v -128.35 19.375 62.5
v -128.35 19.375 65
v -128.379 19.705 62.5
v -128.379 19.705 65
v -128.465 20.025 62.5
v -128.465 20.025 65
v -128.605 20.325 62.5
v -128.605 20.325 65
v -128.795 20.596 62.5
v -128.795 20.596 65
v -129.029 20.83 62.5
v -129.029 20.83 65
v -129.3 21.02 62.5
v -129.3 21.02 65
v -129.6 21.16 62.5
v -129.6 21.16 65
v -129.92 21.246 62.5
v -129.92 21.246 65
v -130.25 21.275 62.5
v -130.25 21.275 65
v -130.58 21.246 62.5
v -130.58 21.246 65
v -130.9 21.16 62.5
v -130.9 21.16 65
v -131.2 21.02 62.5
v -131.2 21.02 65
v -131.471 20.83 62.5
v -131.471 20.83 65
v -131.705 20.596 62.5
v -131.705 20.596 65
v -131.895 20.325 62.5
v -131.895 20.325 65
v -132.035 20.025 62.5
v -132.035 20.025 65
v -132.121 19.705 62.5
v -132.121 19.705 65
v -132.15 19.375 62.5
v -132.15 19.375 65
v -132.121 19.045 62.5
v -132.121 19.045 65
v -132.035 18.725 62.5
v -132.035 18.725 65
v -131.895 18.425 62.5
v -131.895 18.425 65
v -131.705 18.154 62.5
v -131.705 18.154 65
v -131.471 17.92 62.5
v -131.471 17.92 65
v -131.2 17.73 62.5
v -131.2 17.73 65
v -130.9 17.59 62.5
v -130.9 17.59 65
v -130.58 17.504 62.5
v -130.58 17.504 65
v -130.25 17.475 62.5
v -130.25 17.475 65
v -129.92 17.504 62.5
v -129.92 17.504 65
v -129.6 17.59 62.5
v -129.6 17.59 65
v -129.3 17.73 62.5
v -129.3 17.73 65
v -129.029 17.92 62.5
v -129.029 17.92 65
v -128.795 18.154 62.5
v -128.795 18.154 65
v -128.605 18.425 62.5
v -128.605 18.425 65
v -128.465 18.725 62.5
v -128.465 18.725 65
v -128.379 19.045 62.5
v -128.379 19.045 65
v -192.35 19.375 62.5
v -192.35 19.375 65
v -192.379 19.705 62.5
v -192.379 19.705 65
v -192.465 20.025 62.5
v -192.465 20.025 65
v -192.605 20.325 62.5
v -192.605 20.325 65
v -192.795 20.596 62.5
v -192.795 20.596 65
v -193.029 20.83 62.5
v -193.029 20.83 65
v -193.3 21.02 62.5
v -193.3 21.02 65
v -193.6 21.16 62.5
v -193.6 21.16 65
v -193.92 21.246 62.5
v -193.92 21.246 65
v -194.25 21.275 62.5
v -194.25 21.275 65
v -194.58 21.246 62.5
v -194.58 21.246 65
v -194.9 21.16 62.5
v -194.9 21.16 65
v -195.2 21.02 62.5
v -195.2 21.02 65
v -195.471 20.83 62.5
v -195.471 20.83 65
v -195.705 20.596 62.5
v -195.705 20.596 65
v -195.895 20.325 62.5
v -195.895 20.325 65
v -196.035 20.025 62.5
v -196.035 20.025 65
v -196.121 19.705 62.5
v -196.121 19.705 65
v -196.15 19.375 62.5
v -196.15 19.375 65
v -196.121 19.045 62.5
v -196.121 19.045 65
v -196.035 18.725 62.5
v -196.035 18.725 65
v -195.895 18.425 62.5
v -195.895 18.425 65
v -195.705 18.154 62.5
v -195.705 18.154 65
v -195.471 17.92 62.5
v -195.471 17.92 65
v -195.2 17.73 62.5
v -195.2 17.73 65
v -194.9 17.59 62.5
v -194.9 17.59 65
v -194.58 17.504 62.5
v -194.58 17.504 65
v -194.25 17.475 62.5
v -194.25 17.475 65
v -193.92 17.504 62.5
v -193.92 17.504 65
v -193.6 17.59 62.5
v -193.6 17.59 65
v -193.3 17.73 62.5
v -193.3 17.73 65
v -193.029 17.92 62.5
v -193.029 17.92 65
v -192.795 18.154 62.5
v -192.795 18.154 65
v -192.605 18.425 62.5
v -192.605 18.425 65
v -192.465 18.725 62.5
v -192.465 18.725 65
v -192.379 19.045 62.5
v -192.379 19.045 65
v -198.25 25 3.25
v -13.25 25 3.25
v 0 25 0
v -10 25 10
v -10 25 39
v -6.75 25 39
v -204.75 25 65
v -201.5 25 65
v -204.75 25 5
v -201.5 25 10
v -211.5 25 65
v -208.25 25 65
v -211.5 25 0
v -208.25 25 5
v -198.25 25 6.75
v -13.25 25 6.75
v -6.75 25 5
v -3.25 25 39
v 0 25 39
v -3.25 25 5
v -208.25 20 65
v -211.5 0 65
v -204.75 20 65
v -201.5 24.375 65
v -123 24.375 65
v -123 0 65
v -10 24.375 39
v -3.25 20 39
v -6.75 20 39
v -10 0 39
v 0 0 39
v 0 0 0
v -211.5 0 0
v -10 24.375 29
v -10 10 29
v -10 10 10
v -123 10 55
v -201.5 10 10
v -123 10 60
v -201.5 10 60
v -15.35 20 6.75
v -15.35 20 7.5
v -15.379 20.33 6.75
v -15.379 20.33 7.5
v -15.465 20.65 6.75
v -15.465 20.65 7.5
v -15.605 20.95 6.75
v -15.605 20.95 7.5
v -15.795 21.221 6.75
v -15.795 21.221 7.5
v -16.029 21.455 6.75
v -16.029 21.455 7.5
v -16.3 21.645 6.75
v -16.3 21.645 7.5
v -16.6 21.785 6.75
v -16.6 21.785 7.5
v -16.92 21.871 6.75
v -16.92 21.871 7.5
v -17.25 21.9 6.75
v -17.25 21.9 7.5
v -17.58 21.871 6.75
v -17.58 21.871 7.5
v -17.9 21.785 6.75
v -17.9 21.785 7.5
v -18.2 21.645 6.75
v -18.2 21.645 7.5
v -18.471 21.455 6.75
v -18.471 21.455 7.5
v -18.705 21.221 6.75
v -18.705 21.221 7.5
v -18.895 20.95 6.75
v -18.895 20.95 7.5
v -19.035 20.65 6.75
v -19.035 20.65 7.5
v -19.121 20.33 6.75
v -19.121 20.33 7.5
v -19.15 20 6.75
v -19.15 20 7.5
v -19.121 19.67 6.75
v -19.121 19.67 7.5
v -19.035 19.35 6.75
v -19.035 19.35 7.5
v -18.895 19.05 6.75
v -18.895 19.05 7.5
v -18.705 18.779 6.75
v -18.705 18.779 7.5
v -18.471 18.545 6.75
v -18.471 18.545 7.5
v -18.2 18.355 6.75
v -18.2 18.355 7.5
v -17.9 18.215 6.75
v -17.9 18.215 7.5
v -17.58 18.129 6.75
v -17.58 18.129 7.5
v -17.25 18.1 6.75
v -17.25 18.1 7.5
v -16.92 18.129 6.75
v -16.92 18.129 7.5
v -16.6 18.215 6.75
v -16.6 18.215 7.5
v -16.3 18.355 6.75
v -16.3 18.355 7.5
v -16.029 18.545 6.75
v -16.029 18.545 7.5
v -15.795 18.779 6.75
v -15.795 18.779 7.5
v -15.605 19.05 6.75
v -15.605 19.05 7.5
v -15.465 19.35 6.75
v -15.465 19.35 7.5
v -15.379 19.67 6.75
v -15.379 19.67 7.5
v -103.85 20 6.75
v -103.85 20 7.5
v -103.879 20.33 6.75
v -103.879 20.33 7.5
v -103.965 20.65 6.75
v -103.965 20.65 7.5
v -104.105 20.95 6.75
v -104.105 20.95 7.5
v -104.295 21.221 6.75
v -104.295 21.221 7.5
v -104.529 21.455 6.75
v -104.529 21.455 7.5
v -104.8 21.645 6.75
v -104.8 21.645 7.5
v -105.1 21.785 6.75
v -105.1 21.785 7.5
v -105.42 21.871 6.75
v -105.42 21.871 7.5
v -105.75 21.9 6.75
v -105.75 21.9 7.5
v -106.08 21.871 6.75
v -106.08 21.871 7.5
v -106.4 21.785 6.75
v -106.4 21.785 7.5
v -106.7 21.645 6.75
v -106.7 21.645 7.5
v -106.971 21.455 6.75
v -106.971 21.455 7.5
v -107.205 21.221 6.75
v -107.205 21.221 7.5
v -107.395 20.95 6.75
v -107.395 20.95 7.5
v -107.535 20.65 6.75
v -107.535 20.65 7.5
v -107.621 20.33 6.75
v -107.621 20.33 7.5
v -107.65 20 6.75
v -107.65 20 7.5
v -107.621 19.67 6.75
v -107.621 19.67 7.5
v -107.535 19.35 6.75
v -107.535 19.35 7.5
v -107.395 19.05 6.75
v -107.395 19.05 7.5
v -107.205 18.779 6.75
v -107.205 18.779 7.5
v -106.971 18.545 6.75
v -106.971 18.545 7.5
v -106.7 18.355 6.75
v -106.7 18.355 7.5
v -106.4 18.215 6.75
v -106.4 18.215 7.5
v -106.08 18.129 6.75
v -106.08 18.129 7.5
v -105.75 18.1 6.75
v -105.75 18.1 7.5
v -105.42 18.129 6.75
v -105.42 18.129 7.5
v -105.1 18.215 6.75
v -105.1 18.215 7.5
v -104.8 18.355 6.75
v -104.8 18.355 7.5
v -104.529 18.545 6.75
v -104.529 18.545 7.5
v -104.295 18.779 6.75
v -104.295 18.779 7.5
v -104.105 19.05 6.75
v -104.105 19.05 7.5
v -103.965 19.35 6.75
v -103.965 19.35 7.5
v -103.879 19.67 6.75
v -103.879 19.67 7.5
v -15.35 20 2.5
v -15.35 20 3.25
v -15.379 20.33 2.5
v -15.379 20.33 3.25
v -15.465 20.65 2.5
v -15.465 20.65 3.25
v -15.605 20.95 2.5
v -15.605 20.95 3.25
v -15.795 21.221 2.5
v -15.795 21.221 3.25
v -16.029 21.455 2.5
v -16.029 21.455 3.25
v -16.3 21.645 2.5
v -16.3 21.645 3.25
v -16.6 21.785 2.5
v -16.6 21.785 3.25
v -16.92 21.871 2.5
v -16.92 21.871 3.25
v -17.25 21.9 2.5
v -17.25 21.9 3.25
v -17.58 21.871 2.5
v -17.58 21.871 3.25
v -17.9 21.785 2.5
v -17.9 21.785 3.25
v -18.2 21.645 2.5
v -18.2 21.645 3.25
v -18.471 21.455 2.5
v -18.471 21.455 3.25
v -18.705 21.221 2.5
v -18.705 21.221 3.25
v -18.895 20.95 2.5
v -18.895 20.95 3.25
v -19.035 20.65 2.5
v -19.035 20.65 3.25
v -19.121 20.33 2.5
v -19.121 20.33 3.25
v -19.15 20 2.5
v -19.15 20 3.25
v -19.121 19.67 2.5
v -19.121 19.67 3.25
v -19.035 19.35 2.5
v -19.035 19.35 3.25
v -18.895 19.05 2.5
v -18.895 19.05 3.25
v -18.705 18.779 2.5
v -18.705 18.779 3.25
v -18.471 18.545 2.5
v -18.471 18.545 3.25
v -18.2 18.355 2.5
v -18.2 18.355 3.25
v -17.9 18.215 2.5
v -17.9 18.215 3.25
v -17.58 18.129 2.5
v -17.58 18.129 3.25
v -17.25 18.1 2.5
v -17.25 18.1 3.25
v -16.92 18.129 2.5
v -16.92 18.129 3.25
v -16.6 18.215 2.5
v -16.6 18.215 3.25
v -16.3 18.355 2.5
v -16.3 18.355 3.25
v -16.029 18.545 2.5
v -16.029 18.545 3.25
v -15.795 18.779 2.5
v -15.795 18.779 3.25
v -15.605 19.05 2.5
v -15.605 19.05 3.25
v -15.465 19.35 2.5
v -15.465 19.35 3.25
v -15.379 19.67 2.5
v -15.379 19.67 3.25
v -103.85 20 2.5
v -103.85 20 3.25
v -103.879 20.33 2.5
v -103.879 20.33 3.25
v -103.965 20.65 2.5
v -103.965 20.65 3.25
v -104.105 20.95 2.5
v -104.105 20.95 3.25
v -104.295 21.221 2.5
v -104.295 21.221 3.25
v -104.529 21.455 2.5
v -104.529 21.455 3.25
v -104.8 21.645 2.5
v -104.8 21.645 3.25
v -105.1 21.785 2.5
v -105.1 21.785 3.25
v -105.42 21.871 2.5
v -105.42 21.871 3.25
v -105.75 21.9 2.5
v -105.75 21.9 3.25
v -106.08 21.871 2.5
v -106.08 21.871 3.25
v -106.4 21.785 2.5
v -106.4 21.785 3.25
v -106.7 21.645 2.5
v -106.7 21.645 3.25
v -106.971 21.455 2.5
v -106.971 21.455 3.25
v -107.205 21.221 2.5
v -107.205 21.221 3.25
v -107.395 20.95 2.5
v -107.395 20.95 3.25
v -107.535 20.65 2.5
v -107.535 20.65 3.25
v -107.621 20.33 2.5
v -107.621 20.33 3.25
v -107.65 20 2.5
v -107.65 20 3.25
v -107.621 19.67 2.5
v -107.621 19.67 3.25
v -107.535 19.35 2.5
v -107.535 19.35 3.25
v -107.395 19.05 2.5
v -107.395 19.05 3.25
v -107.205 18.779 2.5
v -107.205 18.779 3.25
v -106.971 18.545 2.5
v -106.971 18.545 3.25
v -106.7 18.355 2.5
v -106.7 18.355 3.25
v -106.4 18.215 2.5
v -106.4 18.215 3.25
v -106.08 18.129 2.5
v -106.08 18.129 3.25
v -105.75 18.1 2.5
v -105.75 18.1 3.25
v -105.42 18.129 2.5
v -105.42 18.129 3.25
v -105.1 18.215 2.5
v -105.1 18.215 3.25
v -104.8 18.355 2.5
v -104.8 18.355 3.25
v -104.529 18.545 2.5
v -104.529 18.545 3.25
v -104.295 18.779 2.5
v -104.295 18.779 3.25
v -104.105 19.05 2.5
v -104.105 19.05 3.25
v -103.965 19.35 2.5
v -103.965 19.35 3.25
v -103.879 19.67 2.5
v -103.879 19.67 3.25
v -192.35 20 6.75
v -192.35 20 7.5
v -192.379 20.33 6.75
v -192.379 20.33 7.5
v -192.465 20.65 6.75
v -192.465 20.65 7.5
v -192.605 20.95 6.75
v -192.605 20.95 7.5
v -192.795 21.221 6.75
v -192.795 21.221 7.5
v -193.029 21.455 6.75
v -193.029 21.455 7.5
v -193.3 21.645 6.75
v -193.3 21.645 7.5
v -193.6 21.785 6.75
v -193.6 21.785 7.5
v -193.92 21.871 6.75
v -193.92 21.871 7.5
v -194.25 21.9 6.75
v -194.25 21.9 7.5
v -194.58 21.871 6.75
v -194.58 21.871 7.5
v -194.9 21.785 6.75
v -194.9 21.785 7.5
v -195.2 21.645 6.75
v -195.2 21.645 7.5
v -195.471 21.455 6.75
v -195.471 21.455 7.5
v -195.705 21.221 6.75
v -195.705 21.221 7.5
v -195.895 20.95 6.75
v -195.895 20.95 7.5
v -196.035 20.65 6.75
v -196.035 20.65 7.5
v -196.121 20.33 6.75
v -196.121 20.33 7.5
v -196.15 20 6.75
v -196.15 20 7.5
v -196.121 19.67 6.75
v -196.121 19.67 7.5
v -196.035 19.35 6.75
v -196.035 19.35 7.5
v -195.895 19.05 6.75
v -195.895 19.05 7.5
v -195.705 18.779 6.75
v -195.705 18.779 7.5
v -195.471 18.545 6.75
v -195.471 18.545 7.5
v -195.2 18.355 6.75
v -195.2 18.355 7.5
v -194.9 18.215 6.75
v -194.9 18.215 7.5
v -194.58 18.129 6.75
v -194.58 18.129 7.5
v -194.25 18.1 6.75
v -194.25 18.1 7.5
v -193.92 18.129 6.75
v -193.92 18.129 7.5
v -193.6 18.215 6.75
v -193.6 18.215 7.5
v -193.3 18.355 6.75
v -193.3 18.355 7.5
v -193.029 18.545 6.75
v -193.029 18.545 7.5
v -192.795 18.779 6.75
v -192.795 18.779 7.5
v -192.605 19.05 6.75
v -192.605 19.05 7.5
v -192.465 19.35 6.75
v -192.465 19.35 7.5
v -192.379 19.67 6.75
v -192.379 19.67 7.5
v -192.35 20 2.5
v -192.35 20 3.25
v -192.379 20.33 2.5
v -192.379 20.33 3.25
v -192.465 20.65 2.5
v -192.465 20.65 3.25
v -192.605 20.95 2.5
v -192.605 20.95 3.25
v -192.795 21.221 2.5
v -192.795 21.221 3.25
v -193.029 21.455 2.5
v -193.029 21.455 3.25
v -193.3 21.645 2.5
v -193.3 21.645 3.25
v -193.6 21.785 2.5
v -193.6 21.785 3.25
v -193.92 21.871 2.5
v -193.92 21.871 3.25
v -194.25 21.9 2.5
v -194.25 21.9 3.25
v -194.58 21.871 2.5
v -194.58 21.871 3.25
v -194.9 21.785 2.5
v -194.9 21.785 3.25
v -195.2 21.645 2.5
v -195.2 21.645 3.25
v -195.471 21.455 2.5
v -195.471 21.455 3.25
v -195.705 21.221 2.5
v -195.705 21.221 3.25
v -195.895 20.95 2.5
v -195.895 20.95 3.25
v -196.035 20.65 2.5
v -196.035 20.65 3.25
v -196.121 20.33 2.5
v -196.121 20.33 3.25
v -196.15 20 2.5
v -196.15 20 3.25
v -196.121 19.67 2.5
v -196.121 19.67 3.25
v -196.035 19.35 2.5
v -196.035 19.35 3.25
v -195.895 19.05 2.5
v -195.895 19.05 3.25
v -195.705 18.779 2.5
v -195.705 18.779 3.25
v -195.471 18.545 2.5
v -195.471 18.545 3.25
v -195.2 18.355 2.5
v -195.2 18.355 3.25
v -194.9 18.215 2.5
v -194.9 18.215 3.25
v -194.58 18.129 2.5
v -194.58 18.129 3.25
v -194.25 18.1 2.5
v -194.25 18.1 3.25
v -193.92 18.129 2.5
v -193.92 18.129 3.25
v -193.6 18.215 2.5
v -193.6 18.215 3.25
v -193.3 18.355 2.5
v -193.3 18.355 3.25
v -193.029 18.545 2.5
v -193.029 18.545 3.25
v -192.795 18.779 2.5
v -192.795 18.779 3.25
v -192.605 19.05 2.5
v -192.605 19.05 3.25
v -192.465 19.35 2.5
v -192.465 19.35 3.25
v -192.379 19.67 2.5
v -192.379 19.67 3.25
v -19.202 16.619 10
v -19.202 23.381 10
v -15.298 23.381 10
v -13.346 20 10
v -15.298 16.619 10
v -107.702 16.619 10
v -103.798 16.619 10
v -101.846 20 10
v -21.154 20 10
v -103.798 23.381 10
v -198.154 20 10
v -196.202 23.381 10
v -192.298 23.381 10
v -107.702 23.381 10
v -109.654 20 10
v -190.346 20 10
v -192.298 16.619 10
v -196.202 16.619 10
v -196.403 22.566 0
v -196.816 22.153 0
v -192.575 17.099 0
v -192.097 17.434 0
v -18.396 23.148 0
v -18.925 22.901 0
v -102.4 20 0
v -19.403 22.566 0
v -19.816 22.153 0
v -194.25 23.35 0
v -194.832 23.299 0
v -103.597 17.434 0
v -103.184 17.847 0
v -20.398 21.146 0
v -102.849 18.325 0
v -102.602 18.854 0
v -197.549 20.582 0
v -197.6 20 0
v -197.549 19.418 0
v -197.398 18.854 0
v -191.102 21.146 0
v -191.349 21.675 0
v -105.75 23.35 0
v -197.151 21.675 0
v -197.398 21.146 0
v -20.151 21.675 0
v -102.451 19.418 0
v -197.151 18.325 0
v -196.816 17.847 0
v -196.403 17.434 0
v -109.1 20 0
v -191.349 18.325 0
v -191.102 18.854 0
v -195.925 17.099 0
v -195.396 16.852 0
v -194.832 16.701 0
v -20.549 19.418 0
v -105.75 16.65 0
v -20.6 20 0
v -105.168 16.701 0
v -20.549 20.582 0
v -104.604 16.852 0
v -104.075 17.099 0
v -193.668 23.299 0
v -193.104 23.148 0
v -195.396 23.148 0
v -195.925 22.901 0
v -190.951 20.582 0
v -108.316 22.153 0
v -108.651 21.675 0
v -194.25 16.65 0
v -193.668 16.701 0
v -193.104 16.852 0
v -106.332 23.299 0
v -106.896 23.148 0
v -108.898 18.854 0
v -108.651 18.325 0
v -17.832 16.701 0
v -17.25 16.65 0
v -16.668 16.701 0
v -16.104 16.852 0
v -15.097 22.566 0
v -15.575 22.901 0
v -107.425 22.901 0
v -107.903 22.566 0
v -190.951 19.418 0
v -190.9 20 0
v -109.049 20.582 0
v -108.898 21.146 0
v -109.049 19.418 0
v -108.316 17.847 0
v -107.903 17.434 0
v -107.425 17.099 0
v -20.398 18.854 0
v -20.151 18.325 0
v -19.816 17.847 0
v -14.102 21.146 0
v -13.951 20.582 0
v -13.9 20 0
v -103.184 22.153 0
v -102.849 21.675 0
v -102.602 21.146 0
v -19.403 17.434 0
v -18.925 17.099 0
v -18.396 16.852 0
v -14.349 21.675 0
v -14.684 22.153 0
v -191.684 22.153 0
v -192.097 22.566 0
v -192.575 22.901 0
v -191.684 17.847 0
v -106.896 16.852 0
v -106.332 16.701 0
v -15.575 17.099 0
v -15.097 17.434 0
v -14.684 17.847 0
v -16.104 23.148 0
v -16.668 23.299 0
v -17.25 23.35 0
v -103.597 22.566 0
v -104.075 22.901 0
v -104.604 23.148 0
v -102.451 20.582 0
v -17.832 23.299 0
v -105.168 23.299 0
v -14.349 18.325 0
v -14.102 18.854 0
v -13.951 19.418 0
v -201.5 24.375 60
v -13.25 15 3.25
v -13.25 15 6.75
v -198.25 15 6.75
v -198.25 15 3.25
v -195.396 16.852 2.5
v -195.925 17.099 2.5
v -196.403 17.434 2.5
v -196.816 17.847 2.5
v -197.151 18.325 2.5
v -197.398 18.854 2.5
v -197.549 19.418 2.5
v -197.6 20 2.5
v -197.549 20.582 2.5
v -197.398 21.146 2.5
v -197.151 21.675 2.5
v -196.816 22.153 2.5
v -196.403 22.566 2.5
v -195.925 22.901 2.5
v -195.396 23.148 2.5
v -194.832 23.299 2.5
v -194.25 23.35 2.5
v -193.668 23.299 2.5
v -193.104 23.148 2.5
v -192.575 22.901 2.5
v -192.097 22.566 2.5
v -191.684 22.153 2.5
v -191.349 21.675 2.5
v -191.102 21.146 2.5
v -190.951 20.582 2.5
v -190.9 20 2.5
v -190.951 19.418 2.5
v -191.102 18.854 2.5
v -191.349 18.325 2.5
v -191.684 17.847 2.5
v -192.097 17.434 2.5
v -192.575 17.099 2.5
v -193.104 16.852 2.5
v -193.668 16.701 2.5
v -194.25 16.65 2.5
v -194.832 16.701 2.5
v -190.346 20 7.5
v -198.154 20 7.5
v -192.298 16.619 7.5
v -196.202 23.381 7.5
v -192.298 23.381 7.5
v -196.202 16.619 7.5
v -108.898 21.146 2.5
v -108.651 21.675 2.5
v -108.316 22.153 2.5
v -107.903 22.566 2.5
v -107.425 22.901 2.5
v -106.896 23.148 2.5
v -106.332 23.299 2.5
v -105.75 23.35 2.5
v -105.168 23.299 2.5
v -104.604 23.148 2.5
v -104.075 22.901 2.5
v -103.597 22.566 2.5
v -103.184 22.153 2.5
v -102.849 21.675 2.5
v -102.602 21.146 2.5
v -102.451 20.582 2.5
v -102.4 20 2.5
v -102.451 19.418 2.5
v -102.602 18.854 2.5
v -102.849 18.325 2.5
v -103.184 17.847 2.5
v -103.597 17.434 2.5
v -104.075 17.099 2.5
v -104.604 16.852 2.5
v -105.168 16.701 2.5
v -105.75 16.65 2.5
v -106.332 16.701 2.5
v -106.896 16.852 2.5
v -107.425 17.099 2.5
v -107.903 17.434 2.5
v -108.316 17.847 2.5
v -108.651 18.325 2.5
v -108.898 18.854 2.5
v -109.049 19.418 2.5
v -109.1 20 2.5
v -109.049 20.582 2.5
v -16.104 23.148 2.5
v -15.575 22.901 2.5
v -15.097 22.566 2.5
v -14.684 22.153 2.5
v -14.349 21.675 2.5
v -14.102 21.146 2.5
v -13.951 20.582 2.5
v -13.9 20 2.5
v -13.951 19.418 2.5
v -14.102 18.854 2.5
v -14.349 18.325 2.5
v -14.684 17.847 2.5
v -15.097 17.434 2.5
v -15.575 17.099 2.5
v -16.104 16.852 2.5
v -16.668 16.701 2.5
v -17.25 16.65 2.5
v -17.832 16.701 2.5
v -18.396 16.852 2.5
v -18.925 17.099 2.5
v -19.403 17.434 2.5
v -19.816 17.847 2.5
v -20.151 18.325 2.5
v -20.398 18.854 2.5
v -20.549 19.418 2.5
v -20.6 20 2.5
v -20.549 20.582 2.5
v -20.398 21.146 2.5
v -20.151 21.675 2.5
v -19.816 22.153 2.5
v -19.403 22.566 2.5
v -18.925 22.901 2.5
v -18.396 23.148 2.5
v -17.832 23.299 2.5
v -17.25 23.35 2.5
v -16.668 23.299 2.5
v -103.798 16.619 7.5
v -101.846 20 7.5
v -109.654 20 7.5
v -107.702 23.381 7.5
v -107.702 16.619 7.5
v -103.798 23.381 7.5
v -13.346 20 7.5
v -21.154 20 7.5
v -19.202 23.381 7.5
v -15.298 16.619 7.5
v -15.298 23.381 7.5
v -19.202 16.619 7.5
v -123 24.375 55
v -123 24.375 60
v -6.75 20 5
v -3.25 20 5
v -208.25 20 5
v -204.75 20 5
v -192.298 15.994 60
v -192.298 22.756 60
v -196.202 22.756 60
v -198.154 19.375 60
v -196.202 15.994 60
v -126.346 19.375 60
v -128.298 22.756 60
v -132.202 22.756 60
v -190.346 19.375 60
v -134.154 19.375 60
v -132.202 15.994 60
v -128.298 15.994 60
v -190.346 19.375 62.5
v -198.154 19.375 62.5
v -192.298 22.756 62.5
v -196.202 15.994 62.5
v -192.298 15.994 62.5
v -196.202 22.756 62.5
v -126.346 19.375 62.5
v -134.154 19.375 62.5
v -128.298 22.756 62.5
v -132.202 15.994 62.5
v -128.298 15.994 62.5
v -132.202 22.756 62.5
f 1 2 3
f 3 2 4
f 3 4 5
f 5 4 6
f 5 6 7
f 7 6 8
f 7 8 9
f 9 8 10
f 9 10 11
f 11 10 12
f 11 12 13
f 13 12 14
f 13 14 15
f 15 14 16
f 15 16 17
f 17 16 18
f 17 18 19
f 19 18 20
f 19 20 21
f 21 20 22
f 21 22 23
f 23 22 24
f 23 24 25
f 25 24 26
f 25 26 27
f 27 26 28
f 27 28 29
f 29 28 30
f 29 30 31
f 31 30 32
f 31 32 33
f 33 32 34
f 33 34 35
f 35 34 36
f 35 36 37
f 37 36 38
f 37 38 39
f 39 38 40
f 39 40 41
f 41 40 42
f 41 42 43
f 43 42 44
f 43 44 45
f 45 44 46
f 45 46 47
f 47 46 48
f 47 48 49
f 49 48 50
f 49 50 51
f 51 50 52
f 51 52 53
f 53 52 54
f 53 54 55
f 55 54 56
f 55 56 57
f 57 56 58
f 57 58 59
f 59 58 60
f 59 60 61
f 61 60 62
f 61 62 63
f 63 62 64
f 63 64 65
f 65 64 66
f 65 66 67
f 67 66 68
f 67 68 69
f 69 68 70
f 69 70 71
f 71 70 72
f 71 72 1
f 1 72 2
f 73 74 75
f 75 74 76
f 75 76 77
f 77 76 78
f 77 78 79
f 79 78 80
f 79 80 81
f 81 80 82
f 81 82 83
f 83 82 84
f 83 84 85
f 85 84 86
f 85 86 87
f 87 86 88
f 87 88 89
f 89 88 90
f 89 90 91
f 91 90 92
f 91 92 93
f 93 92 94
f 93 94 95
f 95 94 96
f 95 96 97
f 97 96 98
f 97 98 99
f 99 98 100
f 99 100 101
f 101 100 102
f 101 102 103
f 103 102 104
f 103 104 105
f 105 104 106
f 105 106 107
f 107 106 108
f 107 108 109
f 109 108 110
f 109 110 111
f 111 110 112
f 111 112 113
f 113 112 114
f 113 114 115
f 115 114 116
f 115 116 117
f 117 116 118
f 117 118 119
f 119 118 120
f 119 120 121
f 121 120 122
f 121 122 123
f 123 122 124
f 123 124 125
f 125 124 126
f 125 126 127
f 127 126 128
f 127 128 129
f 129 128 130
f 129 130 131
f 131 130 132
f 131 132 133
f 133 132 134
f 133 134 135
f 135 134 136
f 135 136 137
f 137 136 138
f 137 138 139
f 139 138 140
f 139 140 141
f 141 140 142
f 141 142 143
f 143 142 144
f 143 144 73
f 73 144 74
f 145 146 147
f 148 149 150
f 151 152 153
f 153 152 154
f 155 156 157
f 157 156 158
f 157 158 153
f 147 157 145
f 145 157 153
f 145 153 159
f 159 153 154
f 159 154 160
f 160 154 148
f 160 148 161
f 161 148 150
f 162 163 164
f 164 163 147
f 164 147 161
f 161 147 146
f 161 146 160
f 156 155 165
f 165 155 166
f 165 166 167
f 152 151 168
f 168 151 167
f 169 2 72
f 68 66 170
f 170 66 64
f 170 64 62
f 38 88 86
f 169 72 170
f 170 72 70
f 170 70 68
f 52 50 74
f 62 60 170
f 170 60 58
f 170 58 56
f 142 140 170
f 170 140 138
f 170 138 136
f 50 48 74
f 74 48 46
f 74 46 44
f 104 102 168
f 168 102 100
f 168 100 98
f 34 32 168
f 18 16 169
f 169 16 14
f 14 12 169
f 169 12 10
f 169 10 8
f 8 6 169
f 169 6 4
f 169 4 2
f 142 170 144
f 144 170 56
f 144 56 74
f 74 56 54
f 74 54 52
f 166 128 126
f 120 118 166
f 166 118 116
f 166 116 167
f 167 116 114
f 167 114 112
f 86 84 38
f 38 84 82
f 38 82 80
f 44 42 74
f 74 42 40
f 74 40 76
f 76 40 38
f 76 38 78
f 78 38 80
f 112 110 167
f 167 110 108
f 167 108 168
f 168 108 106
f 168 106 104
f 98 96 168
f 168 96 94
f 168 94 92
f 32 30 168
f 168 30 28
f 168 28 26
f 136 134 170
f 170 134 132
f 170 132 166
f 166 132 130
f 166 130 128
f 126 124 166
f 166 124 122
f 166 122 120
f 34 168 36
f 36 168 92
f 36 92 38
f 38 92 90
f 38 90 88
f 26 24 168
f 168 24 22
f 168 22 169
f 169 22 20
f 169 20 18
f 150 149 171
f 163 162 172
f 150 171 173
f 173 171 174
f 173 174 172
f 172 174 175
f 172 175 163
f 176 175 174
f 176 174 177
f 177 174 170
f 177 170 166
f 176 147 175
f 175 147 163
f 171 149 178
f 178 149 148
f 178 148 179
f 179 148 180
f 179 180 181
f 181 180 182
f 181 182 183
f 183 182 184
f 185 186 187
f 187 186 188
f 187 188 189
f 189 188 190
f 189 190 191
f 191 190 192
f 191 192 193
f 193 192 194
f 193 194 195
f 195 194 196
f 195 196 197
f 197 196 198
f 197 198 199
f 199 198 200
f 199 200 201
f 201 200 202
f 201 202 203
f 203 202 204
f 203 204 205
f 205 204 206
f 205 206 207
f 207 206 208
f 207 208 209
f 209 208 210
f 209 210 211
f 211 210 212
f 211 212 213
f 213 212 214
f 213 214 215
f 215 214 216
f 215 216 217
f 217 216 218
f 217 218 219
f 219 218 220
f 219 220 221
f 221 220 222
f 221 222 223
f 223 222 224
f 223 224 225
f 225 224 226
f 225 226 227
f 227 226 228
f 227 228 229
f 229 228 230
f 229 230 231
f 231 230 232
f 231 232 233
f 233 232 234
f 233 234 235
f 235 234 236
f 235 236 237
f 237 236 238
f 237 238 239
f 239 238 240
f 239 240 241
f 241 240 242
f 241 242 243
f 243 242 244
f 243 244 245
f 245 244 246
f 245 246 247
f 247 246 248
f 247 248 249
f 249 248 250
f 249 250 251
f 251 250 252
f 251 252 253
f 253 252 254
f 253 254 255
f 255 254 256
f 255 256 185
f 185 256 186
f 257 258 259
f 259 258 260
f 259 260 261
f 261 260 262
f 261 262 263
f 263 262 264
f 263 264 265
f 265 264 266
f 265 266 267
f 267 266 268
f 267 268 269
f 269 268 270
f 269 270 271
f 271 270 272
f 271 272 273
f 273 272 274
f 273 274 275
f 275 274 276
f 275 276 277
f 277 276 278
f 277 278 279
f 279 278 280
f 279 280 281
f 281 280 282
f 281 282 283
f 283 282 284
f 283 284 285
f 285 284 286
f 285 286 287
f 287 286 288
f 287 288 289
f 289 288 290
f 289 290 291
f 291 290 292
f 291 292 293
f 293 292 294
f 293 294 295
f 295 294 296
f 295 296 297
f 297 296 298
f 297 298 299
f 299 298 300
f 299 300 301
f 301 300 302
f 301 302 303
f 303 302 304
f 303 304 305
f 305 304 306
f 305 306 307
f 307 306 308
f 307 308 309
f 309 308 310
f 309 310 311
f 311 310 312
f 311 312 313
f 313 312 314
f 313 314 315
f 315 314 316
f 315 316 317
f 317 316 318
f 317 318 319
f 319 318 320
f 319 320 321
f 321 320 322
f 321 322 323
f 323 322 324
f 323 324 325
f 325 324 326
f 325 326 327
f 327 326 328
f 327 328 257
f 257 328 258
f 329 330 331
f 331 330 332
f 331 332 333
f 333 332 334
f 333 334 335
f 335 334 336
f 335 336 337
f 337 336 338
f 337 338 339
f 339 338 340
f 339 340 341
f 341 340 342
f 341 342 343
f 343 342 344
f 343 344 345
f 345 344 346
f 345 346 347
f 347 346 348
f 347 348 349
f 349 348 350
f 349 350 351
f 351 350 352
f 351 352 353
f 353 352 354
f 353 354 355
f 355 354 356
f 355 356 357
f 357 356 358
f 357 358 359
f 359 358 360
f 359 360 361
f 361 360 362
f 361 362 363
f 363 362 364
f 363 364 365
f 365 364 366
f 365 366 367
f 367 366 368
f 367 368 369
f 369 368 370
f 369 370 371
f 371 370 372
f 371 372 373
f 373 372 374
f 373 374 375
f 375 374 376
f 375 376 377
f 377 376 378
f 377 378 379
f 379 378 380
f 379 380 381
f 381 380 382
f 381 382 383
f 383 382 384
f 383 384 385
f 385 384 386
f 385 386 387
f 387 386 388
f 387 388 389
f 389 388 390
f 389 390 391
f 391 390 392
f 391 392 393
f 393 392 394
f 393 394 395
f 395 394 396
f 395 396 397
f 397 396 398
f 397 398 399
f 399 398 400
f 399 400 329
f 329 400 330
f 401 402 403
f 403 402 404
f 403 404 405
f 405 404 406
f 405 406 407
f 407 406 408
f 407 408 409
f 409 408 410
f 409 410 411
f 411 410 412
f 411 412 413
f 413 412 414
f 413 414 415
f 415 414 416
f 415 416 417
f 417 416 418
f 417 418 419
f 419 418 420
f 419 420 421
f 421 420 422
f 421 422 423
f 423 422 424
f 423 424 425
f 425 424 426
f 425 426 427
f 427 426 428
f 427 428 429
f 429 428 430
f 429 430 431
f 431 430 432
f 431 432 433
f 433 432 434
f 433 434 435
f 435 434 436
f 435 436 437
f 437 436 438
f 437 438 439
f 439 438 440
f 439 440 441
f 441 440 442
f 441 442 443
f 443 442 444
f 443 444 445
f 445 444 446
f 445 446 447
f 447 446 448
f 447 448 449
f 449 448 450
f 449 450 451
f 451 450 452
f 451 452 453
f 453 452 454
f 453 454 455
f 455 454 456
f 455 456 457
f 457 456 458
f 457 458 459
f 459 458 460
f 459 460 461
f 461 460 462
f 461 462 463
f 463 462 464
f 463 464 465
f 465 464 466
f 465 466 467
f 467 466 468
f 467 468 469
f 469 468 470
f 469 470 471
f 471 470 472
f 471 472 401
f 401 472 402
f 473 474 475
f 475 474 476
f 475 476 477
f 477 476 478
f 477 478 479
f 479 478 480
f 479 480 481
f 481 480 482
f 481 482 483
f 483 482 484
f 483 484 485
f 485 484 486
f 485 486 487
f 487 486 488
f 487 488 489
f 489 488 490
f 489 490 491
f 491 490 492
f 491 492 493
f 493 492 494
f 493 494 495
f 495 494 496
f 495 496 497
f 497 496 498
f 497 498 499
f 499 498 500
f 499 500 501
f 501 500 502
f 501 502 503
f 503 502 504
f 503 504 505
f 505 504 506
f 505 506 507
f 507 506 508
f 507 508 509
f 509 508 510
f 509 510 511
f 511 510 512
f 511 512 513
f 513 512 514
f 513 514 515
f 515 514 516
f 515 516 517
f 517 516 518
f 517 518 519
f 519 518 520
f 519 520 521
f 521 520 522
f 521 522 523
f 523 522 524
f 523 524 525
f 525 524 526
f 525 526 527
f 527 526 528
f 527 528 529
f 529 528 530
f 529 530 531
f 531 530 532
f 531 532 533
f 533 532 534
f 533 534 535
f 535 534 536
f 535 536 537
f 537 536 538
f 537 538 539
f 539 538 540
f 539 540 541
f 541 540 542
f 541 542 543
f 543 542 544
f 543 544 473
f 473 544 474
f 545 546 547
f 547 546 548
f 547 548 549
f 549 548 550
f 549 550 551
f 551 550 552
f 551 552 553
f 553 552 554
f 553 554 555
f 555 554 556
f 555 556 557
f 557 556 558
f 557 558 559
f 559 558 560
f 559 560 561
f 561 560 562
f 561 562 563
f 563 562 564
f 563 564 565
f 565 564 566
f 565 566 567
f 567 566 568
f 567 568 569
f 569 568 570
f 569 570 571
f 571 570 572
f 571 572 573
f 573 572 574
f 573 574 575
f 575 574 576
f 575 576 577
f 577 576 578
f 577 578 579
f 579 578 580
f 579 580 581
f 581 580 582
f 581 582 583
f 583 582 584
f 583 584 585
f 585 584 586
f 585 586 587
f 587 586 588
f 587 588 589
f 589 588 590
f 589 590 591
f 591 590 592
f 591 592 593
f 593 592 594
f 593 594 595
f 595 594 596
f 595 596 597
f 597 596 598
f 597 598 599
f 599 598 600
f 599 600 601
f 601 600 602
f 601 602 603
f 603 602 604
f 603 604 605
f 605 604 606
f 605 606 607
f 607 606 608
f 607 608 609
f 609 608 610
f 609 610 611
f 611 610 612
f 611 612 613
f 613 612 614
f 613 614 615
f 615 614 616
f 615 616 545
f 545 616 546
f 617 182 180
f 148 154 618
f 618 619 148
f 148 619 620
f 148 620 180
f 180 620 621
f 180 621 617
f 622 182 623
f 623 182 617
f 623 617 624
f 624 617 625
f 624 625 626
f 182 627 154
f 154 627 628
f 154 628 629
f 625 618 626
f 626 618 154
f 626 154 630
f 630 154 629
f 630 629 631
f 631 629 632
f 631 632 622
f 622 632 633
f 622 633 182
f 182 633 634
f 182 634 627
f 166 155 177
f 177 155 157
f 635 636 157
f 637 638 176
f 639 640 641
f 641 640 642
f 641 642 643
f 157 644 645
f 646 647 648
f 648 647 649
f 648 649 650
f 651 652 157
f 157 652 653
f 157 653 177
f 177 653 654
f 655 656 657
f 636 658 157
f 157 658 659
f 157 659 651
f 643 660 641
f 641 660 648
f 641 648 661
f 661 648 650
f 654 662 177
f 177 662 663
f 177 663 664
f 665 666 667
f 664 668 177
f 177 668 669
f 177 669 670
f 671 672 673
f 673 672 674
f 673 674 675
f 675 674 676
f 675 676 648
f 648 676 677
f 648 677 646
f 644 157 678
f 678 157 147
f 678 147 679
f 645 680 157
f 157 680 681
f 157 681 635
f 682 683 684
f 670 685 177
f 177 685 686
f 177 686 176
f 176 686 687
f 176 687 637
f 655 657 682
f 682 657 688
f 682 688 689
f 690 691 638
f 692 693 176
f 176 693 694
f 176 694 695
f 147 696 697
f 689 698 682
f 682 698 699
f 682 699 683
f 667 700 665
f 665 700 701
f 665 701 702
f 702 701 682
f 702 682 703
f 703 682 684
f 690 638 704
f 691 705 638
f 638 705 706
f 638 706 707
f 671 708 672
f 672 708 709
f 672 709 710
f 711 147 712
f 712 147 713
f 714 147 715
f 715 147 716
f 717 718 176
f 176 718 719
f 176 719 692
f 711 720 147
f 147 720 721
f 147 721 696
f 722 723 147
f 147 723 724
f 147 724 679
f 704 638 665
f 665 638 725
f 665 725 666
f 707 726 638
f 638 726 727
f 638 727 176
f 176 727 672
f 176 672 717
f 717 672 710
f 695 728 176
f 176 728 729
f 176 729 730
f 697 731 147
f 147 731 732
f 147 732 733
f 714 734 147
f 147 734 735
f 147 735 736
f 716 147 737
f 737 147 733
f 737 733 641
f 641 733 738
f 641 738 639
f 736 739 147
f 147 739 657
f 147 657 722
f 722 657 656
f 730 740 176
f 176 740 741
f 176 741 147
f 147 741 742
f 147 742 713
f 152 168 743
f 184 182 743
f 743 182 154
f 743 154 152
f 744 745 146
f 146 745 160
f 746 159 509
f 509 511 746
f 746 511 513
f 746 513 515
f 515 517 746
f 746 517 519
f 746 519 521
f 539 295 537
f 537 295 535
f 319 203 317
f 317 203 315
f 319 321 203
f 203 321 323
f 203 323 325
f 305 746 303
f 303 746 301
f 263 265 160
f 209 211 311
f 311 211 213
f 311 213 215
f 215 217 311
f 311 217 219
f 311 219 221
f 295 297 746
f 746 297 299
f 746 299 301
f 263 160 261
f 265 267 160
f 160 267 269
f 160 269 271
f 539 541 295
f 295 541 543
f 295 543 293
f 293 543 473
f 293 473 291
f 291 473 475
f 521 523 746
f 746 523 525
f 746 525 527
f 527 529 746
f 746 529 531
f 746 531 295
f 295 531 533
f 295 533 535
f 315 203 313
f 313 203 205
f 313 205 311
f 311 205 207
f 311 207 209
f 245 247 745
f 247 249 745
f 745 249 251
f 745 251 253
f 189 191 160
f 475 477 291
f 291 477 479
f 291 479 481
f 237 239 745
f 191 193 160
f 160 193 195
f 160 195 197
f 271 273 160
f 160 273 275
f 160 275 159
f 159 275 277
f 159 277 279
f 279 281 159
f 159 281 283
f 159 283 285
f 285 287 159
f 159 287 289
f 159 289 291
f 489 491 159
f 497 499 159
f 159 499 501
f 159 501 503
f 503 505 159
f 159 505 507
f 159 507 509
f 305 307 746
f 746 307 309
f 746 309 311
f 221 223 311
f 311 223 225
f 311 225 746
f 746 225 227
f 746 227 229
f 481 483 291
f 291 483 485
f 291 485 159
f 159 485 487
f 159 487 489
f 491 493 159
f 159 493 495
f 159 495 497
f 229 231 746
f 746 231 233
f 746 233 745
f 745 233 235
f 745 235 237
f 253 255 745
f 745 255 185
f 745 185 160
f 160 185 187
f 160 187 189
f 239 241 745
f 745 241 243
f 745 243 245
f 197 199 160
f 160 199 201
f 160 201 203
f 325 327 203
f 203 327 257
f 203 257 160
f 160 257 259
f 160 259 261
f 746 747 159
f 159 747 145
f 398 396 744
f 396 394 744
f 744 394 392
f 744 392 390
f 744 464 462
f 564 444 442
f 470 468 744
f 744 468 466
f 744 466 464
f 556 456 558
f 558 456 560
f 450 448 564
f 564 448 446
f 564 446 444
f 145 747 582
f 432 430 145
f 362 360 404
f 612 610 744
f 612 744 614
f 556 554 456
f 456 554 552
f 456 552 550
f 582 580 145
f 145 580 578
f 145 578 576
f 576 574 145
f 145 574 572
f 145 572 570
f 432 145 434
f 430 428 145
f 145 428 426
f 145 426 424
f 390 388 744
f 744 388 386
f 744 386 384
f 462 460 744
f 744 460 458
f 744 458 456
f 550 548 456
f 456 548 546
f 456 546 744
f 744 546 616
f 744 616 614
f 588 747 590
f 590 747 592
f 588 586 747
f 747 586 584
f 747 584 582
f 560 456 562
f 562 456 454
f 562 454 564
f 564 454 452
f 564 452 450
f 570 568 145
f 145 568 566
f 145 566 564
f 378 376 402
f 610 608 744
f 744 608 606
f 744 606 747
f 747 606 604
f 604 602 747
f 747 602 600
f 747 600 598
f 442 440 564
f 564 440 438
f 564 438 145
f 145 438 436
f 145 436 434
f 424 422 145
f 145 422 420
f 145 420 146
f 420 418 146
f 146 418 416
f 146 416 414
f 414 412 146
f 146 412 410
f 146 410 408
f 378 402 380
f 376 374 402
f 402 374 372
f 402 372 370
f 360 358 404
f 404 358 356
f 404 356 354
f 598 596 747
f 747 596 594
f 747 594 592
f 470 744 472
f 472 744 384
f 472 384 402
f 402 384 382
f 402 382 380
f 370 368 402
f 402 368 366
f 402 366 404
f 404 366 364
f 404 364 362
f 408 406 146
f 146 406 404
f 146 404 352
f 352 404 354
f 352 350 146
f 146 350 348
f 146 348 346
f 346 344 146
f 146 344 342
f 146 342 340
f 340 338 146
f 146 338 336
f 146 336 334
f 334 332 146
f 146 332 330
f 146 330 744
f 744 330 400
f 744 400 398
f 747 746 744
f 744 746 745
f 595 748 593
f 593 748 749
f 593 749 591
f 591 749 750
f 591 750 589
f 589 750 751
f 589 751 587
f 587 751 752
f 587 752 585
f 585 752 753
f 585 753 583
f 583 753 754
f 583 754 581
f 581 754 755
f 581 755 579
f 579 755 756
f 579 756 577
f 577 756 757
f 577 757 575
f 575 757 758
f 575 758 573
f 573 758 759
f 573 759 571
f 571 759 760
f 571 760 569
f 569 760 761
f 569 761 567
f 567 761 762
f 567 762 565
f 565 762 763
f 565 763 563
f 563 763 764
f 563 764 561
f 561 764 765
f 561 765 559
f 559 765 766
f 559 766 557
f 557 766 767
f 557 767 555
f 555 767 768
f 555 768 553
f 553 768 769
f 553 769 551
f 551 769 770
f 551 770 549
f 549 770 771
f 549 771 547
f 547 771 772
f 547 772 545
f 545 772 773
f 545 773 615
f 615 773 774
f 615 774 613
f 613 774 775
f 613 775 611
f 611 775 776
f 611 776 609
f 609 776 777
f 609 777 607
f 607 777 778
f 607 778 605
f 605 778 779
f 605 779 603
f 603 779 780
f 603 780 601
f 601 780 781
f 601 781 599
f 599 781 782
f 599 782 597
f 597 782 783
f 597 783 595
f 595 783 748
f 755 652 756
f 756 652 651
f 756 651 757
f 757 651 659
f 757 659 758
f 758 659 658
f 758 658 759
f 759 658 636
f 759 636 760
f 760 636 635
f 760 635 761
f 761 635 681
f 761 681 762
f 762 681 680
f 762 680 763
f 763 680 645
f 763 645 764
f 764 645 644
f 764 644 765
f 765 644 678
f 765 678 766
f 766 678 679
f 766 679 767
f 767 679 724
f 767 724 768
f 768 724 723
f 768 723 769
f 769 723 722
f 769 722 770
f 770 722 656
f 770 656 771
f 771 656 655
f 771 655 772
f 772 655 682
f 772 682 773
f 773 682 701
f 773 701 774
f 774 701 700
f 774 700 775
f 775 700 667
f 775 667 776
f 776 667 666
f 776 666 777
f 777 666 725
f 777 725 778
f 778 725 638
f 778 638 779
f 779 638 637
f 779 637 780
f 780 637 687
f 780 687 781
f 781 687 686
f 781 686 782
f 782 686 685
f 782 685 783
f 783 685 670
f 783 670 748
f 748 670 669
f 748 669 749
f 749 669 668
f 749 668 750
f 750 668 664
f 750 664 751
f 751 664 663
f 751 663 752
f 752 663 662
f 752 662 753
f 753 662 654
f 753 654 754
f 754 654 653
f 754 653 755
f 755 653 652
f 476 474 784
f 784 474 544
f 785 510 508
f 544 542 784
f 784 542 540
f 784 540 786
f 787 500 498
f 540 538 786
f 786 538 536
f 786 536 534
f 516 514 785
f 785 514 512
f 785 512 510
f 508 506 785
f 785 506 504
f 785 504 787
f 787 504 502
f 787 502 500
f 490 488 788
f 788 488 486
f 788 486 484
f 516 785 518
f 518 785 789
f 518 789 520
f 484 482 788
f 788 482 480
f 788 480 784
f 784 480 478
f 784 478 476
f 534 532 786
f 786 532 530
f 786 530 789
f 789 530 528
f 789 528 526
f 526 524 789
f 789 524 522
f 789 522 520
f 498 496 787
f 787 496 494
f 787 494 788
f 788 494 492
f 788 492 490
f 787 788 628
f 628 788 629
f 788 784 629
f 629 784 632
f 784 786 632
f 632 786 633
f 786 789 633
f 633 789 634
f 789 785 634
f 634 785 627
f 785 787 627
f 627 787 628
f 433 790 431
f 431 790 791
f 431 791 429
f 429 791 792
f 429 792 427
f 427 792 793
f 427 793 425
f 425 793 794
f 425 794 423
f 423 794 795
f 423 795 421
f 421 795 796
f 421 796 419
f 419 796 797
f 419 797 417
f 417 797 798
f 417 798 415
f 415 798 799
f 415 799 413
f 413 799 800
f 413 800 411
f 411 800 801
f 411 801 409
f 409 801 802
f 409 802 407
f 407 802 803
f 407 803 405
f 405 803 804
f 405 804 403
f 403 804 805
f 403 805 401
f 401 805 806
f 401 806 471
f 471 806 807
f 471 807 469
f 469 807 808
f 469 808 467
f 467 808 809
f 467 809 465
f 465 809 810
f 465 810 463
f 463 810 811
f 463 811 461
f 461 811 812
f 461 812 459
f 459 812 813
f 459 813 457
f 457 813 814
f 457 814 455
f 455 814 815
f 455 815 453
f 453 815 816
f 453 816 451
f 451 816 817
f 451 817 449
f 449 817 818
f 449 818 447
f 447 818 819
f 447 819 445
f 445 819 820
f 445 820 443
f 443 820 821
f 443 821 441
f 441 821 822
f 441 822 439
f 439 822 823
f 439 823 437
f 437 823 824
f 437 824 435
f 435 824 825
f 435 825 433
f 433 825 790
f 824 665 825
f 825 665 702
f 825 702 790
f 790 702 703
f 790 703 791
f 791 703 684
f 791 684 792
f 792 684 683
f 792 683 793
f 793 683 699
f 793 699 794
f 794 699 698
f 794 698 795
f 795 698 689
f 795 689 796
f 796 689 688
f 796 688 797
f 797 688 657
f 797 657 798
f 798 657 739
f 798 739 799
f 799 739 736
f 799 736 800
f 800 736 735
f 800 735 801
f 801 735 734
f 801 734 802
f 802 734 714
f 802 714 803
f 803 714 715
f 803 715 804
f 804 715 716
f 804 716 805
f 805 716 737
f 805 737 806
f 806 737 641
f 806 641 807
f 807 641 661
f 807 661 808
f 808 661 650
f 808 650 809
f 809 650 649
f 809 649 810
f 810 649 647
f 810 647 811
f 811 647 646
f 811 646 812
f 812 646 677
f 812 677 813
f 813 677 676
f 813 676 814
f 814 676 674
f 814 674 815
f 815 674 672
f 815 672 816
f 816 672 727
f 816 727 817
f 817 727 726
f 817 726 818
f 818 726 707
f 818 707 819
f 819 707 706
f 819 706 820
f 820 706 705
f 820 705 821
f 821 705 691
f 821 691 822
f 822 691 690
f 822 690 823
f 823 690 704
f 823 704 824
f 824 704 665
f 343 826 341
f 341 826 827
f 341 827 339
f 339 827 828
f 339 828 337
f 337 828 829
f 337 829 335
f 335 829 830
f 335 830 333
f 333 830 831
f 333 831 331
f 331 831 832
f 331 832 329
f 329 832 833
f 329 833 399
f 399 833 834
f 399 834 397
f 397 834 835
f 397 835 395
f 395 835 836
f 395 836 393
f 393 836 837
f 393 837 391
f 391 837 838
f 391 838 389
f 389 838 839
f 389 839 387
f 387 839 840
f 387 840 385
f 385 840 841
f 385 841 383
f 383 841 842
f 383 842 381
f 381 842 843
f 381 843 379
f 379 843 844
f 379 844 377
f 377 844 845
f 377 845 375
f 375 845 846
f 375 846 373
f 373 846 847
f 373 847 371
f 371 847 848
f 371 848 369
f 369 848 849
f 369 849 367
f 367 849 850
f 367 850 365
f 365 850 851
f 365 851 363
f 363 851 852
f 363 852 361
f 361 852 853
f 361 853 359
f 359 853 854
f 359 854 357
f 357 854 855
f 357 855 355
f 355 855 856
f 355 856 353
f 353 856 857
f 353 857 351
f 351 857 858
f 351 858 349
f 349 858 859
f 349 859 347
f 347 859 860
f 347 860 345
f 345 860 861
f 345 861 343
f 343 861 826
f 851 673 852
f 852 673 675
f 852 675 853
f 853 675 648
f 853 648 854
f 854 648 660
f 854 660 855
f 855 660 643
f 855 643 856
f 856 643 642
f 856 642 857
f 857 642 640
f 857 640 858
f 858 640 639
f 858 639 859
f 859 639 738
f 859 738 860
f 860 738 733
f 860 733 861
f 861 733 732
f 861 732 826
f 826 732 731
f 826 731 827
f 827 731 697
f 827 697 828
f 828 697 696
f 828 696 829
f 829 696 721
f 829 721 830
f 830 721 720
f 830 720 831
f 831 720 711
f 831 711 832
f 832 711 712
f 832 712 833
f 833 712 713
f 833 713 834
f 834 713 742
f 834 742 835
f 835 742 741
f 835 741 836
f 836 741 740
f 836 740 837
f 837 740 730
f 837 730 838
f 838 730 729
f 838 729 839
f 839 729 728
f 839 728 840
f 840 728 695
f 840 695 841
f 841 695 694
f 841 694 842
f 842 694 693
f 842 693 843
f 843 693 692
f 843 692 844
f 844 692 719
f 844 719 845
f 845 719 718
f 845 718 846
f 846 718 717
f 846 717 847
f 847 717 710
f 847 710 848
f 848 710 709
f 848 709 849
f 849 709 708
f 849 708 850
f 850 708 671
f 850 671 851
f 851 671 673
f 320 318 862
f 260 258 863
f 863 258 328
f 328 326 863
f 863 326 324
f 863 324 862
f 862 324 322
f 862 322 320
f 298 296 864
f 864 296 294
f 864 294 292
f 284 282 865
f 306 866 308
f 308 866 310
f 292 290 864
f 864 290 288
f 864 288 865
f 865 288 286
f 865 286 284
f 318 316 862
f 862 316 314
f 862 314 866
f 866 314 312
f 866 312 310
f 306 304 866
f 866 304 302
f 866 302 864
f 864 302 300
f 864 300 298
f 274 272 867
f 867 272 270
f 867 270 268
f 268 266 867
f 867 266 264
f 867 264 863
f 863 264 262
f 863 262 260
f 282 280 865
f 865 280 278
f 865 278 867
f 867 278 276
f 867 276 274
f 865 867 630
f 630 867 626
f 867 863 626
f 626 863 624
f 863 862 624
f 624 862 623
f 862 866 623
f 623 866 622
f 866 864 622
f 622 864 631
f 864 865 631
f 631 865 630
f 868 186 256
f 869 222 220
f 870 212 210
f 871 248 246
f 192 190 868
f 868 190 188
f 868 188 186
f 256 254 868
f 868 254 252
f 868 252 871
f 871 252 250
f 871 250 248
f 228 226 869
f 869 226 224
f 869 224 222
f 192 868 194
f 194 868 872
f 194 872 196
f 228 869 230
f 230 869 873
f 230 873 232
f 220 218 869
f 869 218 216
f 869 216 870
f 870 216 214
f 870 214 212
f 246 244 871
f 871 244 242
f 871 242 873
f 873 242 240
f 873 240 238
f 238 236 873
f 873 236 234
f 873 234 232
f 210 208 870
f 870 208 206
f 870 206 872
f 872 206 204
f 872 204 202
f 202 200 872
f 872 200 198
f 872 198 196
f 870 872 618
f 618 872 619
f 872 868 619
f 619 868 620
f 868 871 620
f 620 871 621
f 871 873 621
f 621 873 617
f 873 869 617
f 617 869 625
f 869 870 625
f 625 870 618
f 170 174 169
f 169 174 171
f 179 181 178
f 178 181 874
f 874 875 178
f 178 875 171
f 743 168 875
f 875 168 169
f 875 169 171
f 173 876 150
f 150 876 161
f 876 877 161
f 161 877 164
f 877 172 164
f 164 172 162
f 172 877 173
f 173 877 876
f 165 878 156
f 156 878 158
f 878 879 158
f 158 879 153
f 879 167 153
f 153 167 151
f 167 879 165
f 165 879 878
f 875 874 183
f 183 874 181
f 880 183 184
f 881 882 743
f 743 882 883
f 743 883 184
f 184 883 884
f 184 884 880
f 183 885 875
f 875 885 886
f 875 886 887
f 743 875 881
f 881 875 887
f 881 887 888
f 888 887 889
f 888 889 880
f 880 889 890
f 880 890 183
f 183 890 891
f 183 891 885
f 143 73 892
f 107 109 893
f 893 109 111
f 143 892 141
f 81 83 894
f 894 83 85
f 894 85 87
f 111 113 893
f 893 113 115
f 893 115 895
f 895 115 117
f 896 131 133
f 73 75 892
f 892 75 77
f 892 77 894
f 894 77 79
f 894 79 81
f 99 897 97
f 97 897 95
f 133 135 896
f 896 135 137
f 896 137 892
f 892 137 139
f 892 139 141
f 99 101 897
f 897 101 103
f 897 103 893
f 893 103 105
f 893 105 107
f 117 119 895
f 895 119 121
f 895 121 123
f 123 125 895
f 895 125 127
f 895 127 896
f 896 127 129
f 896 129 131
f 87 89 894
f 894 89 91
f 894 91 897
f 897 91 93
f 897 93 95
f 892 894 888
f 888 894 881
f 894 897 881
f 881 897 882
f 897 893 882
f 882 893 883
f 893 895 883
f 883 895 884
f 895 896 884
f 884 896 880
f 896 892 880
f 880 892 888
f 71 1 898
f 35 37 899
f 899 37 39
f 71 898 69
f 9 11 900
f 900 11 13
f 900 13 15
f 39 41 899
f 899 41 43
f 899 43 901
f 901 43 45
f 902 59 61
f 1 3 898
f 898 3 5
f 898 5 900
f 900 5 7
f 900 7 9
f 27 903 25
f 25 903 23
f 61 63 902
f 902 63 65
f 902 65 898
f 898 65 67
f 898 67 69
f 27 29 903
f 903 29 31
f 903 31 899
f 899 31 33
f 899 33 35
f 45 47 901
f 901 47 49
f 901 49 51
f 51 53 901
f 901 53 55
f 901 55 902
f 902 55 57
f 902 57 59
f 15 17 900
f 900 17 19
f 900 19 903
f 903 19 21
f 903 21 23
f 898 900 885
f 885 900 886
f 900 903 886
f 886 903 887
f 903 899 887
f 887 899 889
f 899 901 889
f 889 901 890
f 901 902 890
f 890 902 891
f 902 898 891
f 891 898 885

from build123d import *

# Parameters (mm, degrees)
SKETCH1_W           = 25
SKETCH1_H           = 211.5
BOSS_EXTRUDE1_DEPTH = 10
SKETCH2_W           = 10
SKETCH2_H           = 15
SKETCH2_H_2         = 10
SKETCH2_W_2         = 191.5
BOSS_EXTRUDE2_DEPTH = 45
SKETCH3_W           = 185
SKETCH3_H           = 3.5
CUT_EXTRUDE1_DEPTH  = 10
SKETCH4_R           = 1.9
CUT_EXTRUDE2_DEPTH  = 220.959655392
SKETCH5_R           = 3.35
CUT_EXTRUDE3_DEPTH  = 2.5
CUT_EXTRUDE4_DEPTH  = 2.5
LPATTERN1_COUNT     = 3
LPATTERN1_PITCH     = 88.5
CUT_EXTRUDE5_REACH  = 224.671
BOSS_EXTRUDE4_REACH = 224.671
CUT_EXTRUDE6_REACH  = 224.671
SKETCH11_W          = 78.5
SKETCH11_H          = 0.625
SKETCH11_W_2        = 113
SKETCH12_W          = 3.5
SKETCH12_H          = 34
CUT_EXTRUDE8_DEPTH  = 5
CUT_EXTRUDE9_DEPTH  = 5
SKETCH14_W          = 78.5
SKETCH14_H          = 5
CUT_EXTRUDE10_DEPTH = 14.375
CUT_EXTRUDE11_REACH = 224.671
SKETCH15_R          = 1.9
CUT_EXTRUDE12_DEPTH = 2.5
LPATTERN2_COUNT     = 2
LPATTERN2_PITCH     = 64


with BuildPart() as part:
    # Sketch1 → Boss-Extrude1 (new body)
    with BuildSketch(Plane(origin=(0, 0, 0), x_dir=(0, 1, 0), z_dir=(0, 0, 1))):
        with Locations((12.5, 105.75)):
            Rectangle(SKETCH1_W, SKETCH1_H)
    boss_extrude1 = extrude(amount=BOSS_EXTRUDE1_DEPTH)

    # Sketch2 → Boss-Extrude2 (add)
    with BuildSketch(Plane.XY.offset(10)):
        with Locations((-5, 17.5)):
            Rectangle(SKETCH2_W, SKETCH2_H)
        with Locations((-5, 5)):
            Rectangle(SKETCH2_W, SKETCH2_H_2)
        with Locations((-105.75, 5)):
            Rectangle(SKETCH2_W_2, SKETCH2_H_2)
        with Locations((-206.5, 5)):
            Rectangle(SKETCH2_W, SKETCH2_H_2)
        with Locations((-206.5, 17.5)):
            Rectangle(SKETCH2_W, SKETCH2_H)
    extrude(amount=BOSS_EXTRUDE2_DEPTH)

    # Mirror1: Boss-Extrude1 across plane
    add(boss_extrude1.mirror(Plane.XY.offset(32.5)))

    # Sketch3 → Cut-Extrude1 (cut)
    with BuildSketch(Plane(origin=(0, 25, 0), x_dir=(-1, 0, 0), z_dir=(0, 1, 0))):
        with Locations((105.75, 5)):
            Rectangle(SKETCH3_W, SKETCH3_H)
    extrude(amount=-CUT_EXTRUDE1_DEPTH, mode=Mode.SUBTRACT)

    # Sketch4 → Cut-Extrude2 (cut, through all)
    with BuildSketch(Plane(origin=(0, 0, 10), x_dir=(-1, 0, 0), z_dir=(0, 0, 1))):
        with Locations(Location((194.25, -20, 0), (0, 0, 180))):
            Circle(SKETCH4_R)
    cut_extrude2 = extrude(amount=-CUT_EXTRUDE2_DEPTH, mode=Mode.SUBTRACT)

    # Sketch5 → Cut-Extrude3 (cut)
    with BuildSketch(Plane(origin=(0, 0, 0), x_dir=(1, 0, 0), z_dir=(0, 0, -1))):
        with Locations(Location((-194.25, -20, 0), (0, 0, 180))):
            Circle(SKETCH5_R)
    cut_extrude3 = extrude(amount=-CUT_EXTRUDE3_DEPTH, mode=Mode.SUBTRACT)

    # Sketch6 → Cut-Extrude4 (cut)
    with BuildSketch(Plane.XY.offset(10)):
        Polygon((-192.297927406, 23.381088913), (-196.202072594, 23.381088913), (-198.154145188, 20), (-196.202072594, 16.618911087), (-192.297927406, 16.618911087), (-190.345854812, 20), align=None)
    cut_extrude4 = extrude(amount=-CUT_EXTRUDE4_DEPTH, mode=Mode.SUBTRACT)

    # LPattern1: Cut-Extrude2, Cut-Extrude3, Cut-Extrude4 ×3
    with Locations(*[(i * LPATTERN1_PITCH, 0, 0) for i in range(1, LPATTERN1_COUNT)]):
        add(cut_extrude2, mode=Mode.SUBTRACT)
        add(cut_extrude3, mode=Mode.SUBTRACT)
        add(cut_extrude4, mode=Mode.SUBTRACT)

    # Sketch9 → Cut-Extrude5 (cut, up to next)
    with BuildSketch(Plane.XZ, mode=Mode.PRIVATE) as cut_extrude5_sk1:
        Polygon((-10, 39), (0, 39), (0, 65), (-123, 65), align=None)
    cut_extrude5_tool1 = extrude(cut_extrude5_sk1.sketch, amount=-CUT_EXTRUDE5_REACH, mode=Mode.PRIVATE) & part.part
    add(cut_extrude5_tool1.solids().sort_by_distance((-41.250627, 0, 55.681704))[0], mode=Mode.SUBTRACT)

    # Sketch10 → Boss-Extrude4 (add, up to next)
    with BuildSketch(Plane(origin=(0, 25, 0), x_dir=(-1, 0, 0), z_dir=(0, 1, 0)), mode=Mode.PRIVATE) as boss_extrude4_sk1:
        Polygon((123, 65), (10, 39), (10, 29), (123, 55), align=None)
    boss_extrude4_tool1 = extrude(boss_extrude4_sk1.sketch, amount=-BOSS_EXTRUDE4_REACH, mode=Mode.PRIVATE) - part.part
    add(boss_extrude4_tool1.solids().sort_by_distance((-66.5, 25, 47))[0])

    # Sketch11 → Cut-Extrude6 (cut, up to next)
    with BuildSketch(Plane.XY.offset(65), mode=Mode.PRIVATE) as cut_extrude6_sk1:
        with Locations((-162.25, 24.6875)):
            Rectangle(SKETCH11_W, SKETCH11_H)
    cut_extrude6_tool1 = extrude(cut_extrude6_sk1.sketch, amount=-CUT_EXTRUDE6_REACH, mode=Mode.PRIVATE) & part.part
    # Sketch11 → Cut-Extrude6 (cut, up to next)
    with BuildSketch(Plane.XY.offset(65), mode=Mode.PRIVATE) as cut_extrude6_sk2:
        with Locations((-66.5, 24.6875)):
            Rectangle(SKETCH11_W_2, SKETCH11_H)
    cut_extrude6_tool2 = extrude(cut_extrude6_sk2.sketch, amount=-CUT_EXTRUDE6_REACH, mode=Mode.PRIVATE) & part.part
    add(cut_extrude6_tool1.solids().sort_by_distance((-162.25, 24.6875, 65))[0], mode=Mode.SUBTRACT)
    add(cut_extrude6_tool2.solids().sort_by_distance((-66.5, 24.6875, 65))[0], mode=Mode.SUBTRACT)

    # Sketch12 → Cut-Extrude8 (cut)
    with BuildSketch(Plane(origin=(0, 25, 0), x_dir=(-1, 0, 0), z_dir=(0, 1, 0))):
        with Locations((5, 22)):
            Rectangle(SKETCH12_W, SKETCH12_H)
    extrude(amount=-CUT_EXTRUDE8_DEPTH, mode=Mode.SUBTRACT)

    # Sketch13 → Cut-Extrude9 (cut)
    with BuildSketch(Plane(origin=(0, 25, 0), x_dir=(-1, 0, 0), z_dir=(0, 1, 0))):
        Polygon((204.75, 15), (204.75, 5), (208.25, 5), (208.25, 15), (208.25, 65), (204.75, 65), align=None)
    extrude(amount=-CUT_EXTRUDE9_DEPTH, mode=Mode.SUBTRACT)

    # Sketch14 → Cut-Extrude10 (cut)
    with BuildSketch(Plane(origin=(0, 24.375, 0), x_dir=(-1, 0, 0), z_dir=(0, 1, 0))):
        with Locations((162.25, 57.5)):
            Rectangle(SKETCH14_W, SKETCH14_H)
    extrude(amount=-CUT_EXTRUDE10_DEPTH, mode=Mode.SUBTRACT)

    # Sketch15 → Cut-Extrude11 (cut, up to next)
    with BuildSketch(Plane.XY.offset(65), mode=Mode.PRIVATE) as cut_extrude11_sk1:
        with Locations((-194.25, 19.375)):
            Circle(SKETCH15_R)
    cut_extrude11_tool1 = extrude(cut_extrude11_sk1.sketch, amount=-CUT_EXTRUDE11_REACH, mode=Mode.PRIVATE) & part.part
    cut_extrude11 = cut_extrude11_tool1.solids().sort_by_distance((-194.25, 19.375, 65))[0]
    add(cut_extrude11, mode=Mode.SUBTRACT)

    # Sketch16 → Cut-Extrude12 (cut)
    with BuildSketch(Plane(origin=(0, 0, 60), x_dir=(1, 0, 0), z_dir=(0, 0, -1))):
        Polygon((-192.297927406, -15.993911087), (-196.202072594, -15.993911087), (-198.154145188, -19.375), (-196.202072594, -22.756088913), (-192.297927406, -22.756088913), (-190.345854812, -19.375), align=None)
    cut_extrude12 = extrude(amount=-CUT_EXTRUDE12_DEPTH, mode=Mode.SUBTRACT)

    # LPattern2: Cut-Extrude11, Cut-Extrude12 ×2
    with Locations(*[(i * LPATTERN2_PITCH, 0, 0) for i in range(1, LPATTERN2_COUNT)]):
        add(cut_extrude11, mode=Mode.SUBTRACT)
        add(cut_extrude12, mode=Mode.SUBTRACT)


solid = part.part
